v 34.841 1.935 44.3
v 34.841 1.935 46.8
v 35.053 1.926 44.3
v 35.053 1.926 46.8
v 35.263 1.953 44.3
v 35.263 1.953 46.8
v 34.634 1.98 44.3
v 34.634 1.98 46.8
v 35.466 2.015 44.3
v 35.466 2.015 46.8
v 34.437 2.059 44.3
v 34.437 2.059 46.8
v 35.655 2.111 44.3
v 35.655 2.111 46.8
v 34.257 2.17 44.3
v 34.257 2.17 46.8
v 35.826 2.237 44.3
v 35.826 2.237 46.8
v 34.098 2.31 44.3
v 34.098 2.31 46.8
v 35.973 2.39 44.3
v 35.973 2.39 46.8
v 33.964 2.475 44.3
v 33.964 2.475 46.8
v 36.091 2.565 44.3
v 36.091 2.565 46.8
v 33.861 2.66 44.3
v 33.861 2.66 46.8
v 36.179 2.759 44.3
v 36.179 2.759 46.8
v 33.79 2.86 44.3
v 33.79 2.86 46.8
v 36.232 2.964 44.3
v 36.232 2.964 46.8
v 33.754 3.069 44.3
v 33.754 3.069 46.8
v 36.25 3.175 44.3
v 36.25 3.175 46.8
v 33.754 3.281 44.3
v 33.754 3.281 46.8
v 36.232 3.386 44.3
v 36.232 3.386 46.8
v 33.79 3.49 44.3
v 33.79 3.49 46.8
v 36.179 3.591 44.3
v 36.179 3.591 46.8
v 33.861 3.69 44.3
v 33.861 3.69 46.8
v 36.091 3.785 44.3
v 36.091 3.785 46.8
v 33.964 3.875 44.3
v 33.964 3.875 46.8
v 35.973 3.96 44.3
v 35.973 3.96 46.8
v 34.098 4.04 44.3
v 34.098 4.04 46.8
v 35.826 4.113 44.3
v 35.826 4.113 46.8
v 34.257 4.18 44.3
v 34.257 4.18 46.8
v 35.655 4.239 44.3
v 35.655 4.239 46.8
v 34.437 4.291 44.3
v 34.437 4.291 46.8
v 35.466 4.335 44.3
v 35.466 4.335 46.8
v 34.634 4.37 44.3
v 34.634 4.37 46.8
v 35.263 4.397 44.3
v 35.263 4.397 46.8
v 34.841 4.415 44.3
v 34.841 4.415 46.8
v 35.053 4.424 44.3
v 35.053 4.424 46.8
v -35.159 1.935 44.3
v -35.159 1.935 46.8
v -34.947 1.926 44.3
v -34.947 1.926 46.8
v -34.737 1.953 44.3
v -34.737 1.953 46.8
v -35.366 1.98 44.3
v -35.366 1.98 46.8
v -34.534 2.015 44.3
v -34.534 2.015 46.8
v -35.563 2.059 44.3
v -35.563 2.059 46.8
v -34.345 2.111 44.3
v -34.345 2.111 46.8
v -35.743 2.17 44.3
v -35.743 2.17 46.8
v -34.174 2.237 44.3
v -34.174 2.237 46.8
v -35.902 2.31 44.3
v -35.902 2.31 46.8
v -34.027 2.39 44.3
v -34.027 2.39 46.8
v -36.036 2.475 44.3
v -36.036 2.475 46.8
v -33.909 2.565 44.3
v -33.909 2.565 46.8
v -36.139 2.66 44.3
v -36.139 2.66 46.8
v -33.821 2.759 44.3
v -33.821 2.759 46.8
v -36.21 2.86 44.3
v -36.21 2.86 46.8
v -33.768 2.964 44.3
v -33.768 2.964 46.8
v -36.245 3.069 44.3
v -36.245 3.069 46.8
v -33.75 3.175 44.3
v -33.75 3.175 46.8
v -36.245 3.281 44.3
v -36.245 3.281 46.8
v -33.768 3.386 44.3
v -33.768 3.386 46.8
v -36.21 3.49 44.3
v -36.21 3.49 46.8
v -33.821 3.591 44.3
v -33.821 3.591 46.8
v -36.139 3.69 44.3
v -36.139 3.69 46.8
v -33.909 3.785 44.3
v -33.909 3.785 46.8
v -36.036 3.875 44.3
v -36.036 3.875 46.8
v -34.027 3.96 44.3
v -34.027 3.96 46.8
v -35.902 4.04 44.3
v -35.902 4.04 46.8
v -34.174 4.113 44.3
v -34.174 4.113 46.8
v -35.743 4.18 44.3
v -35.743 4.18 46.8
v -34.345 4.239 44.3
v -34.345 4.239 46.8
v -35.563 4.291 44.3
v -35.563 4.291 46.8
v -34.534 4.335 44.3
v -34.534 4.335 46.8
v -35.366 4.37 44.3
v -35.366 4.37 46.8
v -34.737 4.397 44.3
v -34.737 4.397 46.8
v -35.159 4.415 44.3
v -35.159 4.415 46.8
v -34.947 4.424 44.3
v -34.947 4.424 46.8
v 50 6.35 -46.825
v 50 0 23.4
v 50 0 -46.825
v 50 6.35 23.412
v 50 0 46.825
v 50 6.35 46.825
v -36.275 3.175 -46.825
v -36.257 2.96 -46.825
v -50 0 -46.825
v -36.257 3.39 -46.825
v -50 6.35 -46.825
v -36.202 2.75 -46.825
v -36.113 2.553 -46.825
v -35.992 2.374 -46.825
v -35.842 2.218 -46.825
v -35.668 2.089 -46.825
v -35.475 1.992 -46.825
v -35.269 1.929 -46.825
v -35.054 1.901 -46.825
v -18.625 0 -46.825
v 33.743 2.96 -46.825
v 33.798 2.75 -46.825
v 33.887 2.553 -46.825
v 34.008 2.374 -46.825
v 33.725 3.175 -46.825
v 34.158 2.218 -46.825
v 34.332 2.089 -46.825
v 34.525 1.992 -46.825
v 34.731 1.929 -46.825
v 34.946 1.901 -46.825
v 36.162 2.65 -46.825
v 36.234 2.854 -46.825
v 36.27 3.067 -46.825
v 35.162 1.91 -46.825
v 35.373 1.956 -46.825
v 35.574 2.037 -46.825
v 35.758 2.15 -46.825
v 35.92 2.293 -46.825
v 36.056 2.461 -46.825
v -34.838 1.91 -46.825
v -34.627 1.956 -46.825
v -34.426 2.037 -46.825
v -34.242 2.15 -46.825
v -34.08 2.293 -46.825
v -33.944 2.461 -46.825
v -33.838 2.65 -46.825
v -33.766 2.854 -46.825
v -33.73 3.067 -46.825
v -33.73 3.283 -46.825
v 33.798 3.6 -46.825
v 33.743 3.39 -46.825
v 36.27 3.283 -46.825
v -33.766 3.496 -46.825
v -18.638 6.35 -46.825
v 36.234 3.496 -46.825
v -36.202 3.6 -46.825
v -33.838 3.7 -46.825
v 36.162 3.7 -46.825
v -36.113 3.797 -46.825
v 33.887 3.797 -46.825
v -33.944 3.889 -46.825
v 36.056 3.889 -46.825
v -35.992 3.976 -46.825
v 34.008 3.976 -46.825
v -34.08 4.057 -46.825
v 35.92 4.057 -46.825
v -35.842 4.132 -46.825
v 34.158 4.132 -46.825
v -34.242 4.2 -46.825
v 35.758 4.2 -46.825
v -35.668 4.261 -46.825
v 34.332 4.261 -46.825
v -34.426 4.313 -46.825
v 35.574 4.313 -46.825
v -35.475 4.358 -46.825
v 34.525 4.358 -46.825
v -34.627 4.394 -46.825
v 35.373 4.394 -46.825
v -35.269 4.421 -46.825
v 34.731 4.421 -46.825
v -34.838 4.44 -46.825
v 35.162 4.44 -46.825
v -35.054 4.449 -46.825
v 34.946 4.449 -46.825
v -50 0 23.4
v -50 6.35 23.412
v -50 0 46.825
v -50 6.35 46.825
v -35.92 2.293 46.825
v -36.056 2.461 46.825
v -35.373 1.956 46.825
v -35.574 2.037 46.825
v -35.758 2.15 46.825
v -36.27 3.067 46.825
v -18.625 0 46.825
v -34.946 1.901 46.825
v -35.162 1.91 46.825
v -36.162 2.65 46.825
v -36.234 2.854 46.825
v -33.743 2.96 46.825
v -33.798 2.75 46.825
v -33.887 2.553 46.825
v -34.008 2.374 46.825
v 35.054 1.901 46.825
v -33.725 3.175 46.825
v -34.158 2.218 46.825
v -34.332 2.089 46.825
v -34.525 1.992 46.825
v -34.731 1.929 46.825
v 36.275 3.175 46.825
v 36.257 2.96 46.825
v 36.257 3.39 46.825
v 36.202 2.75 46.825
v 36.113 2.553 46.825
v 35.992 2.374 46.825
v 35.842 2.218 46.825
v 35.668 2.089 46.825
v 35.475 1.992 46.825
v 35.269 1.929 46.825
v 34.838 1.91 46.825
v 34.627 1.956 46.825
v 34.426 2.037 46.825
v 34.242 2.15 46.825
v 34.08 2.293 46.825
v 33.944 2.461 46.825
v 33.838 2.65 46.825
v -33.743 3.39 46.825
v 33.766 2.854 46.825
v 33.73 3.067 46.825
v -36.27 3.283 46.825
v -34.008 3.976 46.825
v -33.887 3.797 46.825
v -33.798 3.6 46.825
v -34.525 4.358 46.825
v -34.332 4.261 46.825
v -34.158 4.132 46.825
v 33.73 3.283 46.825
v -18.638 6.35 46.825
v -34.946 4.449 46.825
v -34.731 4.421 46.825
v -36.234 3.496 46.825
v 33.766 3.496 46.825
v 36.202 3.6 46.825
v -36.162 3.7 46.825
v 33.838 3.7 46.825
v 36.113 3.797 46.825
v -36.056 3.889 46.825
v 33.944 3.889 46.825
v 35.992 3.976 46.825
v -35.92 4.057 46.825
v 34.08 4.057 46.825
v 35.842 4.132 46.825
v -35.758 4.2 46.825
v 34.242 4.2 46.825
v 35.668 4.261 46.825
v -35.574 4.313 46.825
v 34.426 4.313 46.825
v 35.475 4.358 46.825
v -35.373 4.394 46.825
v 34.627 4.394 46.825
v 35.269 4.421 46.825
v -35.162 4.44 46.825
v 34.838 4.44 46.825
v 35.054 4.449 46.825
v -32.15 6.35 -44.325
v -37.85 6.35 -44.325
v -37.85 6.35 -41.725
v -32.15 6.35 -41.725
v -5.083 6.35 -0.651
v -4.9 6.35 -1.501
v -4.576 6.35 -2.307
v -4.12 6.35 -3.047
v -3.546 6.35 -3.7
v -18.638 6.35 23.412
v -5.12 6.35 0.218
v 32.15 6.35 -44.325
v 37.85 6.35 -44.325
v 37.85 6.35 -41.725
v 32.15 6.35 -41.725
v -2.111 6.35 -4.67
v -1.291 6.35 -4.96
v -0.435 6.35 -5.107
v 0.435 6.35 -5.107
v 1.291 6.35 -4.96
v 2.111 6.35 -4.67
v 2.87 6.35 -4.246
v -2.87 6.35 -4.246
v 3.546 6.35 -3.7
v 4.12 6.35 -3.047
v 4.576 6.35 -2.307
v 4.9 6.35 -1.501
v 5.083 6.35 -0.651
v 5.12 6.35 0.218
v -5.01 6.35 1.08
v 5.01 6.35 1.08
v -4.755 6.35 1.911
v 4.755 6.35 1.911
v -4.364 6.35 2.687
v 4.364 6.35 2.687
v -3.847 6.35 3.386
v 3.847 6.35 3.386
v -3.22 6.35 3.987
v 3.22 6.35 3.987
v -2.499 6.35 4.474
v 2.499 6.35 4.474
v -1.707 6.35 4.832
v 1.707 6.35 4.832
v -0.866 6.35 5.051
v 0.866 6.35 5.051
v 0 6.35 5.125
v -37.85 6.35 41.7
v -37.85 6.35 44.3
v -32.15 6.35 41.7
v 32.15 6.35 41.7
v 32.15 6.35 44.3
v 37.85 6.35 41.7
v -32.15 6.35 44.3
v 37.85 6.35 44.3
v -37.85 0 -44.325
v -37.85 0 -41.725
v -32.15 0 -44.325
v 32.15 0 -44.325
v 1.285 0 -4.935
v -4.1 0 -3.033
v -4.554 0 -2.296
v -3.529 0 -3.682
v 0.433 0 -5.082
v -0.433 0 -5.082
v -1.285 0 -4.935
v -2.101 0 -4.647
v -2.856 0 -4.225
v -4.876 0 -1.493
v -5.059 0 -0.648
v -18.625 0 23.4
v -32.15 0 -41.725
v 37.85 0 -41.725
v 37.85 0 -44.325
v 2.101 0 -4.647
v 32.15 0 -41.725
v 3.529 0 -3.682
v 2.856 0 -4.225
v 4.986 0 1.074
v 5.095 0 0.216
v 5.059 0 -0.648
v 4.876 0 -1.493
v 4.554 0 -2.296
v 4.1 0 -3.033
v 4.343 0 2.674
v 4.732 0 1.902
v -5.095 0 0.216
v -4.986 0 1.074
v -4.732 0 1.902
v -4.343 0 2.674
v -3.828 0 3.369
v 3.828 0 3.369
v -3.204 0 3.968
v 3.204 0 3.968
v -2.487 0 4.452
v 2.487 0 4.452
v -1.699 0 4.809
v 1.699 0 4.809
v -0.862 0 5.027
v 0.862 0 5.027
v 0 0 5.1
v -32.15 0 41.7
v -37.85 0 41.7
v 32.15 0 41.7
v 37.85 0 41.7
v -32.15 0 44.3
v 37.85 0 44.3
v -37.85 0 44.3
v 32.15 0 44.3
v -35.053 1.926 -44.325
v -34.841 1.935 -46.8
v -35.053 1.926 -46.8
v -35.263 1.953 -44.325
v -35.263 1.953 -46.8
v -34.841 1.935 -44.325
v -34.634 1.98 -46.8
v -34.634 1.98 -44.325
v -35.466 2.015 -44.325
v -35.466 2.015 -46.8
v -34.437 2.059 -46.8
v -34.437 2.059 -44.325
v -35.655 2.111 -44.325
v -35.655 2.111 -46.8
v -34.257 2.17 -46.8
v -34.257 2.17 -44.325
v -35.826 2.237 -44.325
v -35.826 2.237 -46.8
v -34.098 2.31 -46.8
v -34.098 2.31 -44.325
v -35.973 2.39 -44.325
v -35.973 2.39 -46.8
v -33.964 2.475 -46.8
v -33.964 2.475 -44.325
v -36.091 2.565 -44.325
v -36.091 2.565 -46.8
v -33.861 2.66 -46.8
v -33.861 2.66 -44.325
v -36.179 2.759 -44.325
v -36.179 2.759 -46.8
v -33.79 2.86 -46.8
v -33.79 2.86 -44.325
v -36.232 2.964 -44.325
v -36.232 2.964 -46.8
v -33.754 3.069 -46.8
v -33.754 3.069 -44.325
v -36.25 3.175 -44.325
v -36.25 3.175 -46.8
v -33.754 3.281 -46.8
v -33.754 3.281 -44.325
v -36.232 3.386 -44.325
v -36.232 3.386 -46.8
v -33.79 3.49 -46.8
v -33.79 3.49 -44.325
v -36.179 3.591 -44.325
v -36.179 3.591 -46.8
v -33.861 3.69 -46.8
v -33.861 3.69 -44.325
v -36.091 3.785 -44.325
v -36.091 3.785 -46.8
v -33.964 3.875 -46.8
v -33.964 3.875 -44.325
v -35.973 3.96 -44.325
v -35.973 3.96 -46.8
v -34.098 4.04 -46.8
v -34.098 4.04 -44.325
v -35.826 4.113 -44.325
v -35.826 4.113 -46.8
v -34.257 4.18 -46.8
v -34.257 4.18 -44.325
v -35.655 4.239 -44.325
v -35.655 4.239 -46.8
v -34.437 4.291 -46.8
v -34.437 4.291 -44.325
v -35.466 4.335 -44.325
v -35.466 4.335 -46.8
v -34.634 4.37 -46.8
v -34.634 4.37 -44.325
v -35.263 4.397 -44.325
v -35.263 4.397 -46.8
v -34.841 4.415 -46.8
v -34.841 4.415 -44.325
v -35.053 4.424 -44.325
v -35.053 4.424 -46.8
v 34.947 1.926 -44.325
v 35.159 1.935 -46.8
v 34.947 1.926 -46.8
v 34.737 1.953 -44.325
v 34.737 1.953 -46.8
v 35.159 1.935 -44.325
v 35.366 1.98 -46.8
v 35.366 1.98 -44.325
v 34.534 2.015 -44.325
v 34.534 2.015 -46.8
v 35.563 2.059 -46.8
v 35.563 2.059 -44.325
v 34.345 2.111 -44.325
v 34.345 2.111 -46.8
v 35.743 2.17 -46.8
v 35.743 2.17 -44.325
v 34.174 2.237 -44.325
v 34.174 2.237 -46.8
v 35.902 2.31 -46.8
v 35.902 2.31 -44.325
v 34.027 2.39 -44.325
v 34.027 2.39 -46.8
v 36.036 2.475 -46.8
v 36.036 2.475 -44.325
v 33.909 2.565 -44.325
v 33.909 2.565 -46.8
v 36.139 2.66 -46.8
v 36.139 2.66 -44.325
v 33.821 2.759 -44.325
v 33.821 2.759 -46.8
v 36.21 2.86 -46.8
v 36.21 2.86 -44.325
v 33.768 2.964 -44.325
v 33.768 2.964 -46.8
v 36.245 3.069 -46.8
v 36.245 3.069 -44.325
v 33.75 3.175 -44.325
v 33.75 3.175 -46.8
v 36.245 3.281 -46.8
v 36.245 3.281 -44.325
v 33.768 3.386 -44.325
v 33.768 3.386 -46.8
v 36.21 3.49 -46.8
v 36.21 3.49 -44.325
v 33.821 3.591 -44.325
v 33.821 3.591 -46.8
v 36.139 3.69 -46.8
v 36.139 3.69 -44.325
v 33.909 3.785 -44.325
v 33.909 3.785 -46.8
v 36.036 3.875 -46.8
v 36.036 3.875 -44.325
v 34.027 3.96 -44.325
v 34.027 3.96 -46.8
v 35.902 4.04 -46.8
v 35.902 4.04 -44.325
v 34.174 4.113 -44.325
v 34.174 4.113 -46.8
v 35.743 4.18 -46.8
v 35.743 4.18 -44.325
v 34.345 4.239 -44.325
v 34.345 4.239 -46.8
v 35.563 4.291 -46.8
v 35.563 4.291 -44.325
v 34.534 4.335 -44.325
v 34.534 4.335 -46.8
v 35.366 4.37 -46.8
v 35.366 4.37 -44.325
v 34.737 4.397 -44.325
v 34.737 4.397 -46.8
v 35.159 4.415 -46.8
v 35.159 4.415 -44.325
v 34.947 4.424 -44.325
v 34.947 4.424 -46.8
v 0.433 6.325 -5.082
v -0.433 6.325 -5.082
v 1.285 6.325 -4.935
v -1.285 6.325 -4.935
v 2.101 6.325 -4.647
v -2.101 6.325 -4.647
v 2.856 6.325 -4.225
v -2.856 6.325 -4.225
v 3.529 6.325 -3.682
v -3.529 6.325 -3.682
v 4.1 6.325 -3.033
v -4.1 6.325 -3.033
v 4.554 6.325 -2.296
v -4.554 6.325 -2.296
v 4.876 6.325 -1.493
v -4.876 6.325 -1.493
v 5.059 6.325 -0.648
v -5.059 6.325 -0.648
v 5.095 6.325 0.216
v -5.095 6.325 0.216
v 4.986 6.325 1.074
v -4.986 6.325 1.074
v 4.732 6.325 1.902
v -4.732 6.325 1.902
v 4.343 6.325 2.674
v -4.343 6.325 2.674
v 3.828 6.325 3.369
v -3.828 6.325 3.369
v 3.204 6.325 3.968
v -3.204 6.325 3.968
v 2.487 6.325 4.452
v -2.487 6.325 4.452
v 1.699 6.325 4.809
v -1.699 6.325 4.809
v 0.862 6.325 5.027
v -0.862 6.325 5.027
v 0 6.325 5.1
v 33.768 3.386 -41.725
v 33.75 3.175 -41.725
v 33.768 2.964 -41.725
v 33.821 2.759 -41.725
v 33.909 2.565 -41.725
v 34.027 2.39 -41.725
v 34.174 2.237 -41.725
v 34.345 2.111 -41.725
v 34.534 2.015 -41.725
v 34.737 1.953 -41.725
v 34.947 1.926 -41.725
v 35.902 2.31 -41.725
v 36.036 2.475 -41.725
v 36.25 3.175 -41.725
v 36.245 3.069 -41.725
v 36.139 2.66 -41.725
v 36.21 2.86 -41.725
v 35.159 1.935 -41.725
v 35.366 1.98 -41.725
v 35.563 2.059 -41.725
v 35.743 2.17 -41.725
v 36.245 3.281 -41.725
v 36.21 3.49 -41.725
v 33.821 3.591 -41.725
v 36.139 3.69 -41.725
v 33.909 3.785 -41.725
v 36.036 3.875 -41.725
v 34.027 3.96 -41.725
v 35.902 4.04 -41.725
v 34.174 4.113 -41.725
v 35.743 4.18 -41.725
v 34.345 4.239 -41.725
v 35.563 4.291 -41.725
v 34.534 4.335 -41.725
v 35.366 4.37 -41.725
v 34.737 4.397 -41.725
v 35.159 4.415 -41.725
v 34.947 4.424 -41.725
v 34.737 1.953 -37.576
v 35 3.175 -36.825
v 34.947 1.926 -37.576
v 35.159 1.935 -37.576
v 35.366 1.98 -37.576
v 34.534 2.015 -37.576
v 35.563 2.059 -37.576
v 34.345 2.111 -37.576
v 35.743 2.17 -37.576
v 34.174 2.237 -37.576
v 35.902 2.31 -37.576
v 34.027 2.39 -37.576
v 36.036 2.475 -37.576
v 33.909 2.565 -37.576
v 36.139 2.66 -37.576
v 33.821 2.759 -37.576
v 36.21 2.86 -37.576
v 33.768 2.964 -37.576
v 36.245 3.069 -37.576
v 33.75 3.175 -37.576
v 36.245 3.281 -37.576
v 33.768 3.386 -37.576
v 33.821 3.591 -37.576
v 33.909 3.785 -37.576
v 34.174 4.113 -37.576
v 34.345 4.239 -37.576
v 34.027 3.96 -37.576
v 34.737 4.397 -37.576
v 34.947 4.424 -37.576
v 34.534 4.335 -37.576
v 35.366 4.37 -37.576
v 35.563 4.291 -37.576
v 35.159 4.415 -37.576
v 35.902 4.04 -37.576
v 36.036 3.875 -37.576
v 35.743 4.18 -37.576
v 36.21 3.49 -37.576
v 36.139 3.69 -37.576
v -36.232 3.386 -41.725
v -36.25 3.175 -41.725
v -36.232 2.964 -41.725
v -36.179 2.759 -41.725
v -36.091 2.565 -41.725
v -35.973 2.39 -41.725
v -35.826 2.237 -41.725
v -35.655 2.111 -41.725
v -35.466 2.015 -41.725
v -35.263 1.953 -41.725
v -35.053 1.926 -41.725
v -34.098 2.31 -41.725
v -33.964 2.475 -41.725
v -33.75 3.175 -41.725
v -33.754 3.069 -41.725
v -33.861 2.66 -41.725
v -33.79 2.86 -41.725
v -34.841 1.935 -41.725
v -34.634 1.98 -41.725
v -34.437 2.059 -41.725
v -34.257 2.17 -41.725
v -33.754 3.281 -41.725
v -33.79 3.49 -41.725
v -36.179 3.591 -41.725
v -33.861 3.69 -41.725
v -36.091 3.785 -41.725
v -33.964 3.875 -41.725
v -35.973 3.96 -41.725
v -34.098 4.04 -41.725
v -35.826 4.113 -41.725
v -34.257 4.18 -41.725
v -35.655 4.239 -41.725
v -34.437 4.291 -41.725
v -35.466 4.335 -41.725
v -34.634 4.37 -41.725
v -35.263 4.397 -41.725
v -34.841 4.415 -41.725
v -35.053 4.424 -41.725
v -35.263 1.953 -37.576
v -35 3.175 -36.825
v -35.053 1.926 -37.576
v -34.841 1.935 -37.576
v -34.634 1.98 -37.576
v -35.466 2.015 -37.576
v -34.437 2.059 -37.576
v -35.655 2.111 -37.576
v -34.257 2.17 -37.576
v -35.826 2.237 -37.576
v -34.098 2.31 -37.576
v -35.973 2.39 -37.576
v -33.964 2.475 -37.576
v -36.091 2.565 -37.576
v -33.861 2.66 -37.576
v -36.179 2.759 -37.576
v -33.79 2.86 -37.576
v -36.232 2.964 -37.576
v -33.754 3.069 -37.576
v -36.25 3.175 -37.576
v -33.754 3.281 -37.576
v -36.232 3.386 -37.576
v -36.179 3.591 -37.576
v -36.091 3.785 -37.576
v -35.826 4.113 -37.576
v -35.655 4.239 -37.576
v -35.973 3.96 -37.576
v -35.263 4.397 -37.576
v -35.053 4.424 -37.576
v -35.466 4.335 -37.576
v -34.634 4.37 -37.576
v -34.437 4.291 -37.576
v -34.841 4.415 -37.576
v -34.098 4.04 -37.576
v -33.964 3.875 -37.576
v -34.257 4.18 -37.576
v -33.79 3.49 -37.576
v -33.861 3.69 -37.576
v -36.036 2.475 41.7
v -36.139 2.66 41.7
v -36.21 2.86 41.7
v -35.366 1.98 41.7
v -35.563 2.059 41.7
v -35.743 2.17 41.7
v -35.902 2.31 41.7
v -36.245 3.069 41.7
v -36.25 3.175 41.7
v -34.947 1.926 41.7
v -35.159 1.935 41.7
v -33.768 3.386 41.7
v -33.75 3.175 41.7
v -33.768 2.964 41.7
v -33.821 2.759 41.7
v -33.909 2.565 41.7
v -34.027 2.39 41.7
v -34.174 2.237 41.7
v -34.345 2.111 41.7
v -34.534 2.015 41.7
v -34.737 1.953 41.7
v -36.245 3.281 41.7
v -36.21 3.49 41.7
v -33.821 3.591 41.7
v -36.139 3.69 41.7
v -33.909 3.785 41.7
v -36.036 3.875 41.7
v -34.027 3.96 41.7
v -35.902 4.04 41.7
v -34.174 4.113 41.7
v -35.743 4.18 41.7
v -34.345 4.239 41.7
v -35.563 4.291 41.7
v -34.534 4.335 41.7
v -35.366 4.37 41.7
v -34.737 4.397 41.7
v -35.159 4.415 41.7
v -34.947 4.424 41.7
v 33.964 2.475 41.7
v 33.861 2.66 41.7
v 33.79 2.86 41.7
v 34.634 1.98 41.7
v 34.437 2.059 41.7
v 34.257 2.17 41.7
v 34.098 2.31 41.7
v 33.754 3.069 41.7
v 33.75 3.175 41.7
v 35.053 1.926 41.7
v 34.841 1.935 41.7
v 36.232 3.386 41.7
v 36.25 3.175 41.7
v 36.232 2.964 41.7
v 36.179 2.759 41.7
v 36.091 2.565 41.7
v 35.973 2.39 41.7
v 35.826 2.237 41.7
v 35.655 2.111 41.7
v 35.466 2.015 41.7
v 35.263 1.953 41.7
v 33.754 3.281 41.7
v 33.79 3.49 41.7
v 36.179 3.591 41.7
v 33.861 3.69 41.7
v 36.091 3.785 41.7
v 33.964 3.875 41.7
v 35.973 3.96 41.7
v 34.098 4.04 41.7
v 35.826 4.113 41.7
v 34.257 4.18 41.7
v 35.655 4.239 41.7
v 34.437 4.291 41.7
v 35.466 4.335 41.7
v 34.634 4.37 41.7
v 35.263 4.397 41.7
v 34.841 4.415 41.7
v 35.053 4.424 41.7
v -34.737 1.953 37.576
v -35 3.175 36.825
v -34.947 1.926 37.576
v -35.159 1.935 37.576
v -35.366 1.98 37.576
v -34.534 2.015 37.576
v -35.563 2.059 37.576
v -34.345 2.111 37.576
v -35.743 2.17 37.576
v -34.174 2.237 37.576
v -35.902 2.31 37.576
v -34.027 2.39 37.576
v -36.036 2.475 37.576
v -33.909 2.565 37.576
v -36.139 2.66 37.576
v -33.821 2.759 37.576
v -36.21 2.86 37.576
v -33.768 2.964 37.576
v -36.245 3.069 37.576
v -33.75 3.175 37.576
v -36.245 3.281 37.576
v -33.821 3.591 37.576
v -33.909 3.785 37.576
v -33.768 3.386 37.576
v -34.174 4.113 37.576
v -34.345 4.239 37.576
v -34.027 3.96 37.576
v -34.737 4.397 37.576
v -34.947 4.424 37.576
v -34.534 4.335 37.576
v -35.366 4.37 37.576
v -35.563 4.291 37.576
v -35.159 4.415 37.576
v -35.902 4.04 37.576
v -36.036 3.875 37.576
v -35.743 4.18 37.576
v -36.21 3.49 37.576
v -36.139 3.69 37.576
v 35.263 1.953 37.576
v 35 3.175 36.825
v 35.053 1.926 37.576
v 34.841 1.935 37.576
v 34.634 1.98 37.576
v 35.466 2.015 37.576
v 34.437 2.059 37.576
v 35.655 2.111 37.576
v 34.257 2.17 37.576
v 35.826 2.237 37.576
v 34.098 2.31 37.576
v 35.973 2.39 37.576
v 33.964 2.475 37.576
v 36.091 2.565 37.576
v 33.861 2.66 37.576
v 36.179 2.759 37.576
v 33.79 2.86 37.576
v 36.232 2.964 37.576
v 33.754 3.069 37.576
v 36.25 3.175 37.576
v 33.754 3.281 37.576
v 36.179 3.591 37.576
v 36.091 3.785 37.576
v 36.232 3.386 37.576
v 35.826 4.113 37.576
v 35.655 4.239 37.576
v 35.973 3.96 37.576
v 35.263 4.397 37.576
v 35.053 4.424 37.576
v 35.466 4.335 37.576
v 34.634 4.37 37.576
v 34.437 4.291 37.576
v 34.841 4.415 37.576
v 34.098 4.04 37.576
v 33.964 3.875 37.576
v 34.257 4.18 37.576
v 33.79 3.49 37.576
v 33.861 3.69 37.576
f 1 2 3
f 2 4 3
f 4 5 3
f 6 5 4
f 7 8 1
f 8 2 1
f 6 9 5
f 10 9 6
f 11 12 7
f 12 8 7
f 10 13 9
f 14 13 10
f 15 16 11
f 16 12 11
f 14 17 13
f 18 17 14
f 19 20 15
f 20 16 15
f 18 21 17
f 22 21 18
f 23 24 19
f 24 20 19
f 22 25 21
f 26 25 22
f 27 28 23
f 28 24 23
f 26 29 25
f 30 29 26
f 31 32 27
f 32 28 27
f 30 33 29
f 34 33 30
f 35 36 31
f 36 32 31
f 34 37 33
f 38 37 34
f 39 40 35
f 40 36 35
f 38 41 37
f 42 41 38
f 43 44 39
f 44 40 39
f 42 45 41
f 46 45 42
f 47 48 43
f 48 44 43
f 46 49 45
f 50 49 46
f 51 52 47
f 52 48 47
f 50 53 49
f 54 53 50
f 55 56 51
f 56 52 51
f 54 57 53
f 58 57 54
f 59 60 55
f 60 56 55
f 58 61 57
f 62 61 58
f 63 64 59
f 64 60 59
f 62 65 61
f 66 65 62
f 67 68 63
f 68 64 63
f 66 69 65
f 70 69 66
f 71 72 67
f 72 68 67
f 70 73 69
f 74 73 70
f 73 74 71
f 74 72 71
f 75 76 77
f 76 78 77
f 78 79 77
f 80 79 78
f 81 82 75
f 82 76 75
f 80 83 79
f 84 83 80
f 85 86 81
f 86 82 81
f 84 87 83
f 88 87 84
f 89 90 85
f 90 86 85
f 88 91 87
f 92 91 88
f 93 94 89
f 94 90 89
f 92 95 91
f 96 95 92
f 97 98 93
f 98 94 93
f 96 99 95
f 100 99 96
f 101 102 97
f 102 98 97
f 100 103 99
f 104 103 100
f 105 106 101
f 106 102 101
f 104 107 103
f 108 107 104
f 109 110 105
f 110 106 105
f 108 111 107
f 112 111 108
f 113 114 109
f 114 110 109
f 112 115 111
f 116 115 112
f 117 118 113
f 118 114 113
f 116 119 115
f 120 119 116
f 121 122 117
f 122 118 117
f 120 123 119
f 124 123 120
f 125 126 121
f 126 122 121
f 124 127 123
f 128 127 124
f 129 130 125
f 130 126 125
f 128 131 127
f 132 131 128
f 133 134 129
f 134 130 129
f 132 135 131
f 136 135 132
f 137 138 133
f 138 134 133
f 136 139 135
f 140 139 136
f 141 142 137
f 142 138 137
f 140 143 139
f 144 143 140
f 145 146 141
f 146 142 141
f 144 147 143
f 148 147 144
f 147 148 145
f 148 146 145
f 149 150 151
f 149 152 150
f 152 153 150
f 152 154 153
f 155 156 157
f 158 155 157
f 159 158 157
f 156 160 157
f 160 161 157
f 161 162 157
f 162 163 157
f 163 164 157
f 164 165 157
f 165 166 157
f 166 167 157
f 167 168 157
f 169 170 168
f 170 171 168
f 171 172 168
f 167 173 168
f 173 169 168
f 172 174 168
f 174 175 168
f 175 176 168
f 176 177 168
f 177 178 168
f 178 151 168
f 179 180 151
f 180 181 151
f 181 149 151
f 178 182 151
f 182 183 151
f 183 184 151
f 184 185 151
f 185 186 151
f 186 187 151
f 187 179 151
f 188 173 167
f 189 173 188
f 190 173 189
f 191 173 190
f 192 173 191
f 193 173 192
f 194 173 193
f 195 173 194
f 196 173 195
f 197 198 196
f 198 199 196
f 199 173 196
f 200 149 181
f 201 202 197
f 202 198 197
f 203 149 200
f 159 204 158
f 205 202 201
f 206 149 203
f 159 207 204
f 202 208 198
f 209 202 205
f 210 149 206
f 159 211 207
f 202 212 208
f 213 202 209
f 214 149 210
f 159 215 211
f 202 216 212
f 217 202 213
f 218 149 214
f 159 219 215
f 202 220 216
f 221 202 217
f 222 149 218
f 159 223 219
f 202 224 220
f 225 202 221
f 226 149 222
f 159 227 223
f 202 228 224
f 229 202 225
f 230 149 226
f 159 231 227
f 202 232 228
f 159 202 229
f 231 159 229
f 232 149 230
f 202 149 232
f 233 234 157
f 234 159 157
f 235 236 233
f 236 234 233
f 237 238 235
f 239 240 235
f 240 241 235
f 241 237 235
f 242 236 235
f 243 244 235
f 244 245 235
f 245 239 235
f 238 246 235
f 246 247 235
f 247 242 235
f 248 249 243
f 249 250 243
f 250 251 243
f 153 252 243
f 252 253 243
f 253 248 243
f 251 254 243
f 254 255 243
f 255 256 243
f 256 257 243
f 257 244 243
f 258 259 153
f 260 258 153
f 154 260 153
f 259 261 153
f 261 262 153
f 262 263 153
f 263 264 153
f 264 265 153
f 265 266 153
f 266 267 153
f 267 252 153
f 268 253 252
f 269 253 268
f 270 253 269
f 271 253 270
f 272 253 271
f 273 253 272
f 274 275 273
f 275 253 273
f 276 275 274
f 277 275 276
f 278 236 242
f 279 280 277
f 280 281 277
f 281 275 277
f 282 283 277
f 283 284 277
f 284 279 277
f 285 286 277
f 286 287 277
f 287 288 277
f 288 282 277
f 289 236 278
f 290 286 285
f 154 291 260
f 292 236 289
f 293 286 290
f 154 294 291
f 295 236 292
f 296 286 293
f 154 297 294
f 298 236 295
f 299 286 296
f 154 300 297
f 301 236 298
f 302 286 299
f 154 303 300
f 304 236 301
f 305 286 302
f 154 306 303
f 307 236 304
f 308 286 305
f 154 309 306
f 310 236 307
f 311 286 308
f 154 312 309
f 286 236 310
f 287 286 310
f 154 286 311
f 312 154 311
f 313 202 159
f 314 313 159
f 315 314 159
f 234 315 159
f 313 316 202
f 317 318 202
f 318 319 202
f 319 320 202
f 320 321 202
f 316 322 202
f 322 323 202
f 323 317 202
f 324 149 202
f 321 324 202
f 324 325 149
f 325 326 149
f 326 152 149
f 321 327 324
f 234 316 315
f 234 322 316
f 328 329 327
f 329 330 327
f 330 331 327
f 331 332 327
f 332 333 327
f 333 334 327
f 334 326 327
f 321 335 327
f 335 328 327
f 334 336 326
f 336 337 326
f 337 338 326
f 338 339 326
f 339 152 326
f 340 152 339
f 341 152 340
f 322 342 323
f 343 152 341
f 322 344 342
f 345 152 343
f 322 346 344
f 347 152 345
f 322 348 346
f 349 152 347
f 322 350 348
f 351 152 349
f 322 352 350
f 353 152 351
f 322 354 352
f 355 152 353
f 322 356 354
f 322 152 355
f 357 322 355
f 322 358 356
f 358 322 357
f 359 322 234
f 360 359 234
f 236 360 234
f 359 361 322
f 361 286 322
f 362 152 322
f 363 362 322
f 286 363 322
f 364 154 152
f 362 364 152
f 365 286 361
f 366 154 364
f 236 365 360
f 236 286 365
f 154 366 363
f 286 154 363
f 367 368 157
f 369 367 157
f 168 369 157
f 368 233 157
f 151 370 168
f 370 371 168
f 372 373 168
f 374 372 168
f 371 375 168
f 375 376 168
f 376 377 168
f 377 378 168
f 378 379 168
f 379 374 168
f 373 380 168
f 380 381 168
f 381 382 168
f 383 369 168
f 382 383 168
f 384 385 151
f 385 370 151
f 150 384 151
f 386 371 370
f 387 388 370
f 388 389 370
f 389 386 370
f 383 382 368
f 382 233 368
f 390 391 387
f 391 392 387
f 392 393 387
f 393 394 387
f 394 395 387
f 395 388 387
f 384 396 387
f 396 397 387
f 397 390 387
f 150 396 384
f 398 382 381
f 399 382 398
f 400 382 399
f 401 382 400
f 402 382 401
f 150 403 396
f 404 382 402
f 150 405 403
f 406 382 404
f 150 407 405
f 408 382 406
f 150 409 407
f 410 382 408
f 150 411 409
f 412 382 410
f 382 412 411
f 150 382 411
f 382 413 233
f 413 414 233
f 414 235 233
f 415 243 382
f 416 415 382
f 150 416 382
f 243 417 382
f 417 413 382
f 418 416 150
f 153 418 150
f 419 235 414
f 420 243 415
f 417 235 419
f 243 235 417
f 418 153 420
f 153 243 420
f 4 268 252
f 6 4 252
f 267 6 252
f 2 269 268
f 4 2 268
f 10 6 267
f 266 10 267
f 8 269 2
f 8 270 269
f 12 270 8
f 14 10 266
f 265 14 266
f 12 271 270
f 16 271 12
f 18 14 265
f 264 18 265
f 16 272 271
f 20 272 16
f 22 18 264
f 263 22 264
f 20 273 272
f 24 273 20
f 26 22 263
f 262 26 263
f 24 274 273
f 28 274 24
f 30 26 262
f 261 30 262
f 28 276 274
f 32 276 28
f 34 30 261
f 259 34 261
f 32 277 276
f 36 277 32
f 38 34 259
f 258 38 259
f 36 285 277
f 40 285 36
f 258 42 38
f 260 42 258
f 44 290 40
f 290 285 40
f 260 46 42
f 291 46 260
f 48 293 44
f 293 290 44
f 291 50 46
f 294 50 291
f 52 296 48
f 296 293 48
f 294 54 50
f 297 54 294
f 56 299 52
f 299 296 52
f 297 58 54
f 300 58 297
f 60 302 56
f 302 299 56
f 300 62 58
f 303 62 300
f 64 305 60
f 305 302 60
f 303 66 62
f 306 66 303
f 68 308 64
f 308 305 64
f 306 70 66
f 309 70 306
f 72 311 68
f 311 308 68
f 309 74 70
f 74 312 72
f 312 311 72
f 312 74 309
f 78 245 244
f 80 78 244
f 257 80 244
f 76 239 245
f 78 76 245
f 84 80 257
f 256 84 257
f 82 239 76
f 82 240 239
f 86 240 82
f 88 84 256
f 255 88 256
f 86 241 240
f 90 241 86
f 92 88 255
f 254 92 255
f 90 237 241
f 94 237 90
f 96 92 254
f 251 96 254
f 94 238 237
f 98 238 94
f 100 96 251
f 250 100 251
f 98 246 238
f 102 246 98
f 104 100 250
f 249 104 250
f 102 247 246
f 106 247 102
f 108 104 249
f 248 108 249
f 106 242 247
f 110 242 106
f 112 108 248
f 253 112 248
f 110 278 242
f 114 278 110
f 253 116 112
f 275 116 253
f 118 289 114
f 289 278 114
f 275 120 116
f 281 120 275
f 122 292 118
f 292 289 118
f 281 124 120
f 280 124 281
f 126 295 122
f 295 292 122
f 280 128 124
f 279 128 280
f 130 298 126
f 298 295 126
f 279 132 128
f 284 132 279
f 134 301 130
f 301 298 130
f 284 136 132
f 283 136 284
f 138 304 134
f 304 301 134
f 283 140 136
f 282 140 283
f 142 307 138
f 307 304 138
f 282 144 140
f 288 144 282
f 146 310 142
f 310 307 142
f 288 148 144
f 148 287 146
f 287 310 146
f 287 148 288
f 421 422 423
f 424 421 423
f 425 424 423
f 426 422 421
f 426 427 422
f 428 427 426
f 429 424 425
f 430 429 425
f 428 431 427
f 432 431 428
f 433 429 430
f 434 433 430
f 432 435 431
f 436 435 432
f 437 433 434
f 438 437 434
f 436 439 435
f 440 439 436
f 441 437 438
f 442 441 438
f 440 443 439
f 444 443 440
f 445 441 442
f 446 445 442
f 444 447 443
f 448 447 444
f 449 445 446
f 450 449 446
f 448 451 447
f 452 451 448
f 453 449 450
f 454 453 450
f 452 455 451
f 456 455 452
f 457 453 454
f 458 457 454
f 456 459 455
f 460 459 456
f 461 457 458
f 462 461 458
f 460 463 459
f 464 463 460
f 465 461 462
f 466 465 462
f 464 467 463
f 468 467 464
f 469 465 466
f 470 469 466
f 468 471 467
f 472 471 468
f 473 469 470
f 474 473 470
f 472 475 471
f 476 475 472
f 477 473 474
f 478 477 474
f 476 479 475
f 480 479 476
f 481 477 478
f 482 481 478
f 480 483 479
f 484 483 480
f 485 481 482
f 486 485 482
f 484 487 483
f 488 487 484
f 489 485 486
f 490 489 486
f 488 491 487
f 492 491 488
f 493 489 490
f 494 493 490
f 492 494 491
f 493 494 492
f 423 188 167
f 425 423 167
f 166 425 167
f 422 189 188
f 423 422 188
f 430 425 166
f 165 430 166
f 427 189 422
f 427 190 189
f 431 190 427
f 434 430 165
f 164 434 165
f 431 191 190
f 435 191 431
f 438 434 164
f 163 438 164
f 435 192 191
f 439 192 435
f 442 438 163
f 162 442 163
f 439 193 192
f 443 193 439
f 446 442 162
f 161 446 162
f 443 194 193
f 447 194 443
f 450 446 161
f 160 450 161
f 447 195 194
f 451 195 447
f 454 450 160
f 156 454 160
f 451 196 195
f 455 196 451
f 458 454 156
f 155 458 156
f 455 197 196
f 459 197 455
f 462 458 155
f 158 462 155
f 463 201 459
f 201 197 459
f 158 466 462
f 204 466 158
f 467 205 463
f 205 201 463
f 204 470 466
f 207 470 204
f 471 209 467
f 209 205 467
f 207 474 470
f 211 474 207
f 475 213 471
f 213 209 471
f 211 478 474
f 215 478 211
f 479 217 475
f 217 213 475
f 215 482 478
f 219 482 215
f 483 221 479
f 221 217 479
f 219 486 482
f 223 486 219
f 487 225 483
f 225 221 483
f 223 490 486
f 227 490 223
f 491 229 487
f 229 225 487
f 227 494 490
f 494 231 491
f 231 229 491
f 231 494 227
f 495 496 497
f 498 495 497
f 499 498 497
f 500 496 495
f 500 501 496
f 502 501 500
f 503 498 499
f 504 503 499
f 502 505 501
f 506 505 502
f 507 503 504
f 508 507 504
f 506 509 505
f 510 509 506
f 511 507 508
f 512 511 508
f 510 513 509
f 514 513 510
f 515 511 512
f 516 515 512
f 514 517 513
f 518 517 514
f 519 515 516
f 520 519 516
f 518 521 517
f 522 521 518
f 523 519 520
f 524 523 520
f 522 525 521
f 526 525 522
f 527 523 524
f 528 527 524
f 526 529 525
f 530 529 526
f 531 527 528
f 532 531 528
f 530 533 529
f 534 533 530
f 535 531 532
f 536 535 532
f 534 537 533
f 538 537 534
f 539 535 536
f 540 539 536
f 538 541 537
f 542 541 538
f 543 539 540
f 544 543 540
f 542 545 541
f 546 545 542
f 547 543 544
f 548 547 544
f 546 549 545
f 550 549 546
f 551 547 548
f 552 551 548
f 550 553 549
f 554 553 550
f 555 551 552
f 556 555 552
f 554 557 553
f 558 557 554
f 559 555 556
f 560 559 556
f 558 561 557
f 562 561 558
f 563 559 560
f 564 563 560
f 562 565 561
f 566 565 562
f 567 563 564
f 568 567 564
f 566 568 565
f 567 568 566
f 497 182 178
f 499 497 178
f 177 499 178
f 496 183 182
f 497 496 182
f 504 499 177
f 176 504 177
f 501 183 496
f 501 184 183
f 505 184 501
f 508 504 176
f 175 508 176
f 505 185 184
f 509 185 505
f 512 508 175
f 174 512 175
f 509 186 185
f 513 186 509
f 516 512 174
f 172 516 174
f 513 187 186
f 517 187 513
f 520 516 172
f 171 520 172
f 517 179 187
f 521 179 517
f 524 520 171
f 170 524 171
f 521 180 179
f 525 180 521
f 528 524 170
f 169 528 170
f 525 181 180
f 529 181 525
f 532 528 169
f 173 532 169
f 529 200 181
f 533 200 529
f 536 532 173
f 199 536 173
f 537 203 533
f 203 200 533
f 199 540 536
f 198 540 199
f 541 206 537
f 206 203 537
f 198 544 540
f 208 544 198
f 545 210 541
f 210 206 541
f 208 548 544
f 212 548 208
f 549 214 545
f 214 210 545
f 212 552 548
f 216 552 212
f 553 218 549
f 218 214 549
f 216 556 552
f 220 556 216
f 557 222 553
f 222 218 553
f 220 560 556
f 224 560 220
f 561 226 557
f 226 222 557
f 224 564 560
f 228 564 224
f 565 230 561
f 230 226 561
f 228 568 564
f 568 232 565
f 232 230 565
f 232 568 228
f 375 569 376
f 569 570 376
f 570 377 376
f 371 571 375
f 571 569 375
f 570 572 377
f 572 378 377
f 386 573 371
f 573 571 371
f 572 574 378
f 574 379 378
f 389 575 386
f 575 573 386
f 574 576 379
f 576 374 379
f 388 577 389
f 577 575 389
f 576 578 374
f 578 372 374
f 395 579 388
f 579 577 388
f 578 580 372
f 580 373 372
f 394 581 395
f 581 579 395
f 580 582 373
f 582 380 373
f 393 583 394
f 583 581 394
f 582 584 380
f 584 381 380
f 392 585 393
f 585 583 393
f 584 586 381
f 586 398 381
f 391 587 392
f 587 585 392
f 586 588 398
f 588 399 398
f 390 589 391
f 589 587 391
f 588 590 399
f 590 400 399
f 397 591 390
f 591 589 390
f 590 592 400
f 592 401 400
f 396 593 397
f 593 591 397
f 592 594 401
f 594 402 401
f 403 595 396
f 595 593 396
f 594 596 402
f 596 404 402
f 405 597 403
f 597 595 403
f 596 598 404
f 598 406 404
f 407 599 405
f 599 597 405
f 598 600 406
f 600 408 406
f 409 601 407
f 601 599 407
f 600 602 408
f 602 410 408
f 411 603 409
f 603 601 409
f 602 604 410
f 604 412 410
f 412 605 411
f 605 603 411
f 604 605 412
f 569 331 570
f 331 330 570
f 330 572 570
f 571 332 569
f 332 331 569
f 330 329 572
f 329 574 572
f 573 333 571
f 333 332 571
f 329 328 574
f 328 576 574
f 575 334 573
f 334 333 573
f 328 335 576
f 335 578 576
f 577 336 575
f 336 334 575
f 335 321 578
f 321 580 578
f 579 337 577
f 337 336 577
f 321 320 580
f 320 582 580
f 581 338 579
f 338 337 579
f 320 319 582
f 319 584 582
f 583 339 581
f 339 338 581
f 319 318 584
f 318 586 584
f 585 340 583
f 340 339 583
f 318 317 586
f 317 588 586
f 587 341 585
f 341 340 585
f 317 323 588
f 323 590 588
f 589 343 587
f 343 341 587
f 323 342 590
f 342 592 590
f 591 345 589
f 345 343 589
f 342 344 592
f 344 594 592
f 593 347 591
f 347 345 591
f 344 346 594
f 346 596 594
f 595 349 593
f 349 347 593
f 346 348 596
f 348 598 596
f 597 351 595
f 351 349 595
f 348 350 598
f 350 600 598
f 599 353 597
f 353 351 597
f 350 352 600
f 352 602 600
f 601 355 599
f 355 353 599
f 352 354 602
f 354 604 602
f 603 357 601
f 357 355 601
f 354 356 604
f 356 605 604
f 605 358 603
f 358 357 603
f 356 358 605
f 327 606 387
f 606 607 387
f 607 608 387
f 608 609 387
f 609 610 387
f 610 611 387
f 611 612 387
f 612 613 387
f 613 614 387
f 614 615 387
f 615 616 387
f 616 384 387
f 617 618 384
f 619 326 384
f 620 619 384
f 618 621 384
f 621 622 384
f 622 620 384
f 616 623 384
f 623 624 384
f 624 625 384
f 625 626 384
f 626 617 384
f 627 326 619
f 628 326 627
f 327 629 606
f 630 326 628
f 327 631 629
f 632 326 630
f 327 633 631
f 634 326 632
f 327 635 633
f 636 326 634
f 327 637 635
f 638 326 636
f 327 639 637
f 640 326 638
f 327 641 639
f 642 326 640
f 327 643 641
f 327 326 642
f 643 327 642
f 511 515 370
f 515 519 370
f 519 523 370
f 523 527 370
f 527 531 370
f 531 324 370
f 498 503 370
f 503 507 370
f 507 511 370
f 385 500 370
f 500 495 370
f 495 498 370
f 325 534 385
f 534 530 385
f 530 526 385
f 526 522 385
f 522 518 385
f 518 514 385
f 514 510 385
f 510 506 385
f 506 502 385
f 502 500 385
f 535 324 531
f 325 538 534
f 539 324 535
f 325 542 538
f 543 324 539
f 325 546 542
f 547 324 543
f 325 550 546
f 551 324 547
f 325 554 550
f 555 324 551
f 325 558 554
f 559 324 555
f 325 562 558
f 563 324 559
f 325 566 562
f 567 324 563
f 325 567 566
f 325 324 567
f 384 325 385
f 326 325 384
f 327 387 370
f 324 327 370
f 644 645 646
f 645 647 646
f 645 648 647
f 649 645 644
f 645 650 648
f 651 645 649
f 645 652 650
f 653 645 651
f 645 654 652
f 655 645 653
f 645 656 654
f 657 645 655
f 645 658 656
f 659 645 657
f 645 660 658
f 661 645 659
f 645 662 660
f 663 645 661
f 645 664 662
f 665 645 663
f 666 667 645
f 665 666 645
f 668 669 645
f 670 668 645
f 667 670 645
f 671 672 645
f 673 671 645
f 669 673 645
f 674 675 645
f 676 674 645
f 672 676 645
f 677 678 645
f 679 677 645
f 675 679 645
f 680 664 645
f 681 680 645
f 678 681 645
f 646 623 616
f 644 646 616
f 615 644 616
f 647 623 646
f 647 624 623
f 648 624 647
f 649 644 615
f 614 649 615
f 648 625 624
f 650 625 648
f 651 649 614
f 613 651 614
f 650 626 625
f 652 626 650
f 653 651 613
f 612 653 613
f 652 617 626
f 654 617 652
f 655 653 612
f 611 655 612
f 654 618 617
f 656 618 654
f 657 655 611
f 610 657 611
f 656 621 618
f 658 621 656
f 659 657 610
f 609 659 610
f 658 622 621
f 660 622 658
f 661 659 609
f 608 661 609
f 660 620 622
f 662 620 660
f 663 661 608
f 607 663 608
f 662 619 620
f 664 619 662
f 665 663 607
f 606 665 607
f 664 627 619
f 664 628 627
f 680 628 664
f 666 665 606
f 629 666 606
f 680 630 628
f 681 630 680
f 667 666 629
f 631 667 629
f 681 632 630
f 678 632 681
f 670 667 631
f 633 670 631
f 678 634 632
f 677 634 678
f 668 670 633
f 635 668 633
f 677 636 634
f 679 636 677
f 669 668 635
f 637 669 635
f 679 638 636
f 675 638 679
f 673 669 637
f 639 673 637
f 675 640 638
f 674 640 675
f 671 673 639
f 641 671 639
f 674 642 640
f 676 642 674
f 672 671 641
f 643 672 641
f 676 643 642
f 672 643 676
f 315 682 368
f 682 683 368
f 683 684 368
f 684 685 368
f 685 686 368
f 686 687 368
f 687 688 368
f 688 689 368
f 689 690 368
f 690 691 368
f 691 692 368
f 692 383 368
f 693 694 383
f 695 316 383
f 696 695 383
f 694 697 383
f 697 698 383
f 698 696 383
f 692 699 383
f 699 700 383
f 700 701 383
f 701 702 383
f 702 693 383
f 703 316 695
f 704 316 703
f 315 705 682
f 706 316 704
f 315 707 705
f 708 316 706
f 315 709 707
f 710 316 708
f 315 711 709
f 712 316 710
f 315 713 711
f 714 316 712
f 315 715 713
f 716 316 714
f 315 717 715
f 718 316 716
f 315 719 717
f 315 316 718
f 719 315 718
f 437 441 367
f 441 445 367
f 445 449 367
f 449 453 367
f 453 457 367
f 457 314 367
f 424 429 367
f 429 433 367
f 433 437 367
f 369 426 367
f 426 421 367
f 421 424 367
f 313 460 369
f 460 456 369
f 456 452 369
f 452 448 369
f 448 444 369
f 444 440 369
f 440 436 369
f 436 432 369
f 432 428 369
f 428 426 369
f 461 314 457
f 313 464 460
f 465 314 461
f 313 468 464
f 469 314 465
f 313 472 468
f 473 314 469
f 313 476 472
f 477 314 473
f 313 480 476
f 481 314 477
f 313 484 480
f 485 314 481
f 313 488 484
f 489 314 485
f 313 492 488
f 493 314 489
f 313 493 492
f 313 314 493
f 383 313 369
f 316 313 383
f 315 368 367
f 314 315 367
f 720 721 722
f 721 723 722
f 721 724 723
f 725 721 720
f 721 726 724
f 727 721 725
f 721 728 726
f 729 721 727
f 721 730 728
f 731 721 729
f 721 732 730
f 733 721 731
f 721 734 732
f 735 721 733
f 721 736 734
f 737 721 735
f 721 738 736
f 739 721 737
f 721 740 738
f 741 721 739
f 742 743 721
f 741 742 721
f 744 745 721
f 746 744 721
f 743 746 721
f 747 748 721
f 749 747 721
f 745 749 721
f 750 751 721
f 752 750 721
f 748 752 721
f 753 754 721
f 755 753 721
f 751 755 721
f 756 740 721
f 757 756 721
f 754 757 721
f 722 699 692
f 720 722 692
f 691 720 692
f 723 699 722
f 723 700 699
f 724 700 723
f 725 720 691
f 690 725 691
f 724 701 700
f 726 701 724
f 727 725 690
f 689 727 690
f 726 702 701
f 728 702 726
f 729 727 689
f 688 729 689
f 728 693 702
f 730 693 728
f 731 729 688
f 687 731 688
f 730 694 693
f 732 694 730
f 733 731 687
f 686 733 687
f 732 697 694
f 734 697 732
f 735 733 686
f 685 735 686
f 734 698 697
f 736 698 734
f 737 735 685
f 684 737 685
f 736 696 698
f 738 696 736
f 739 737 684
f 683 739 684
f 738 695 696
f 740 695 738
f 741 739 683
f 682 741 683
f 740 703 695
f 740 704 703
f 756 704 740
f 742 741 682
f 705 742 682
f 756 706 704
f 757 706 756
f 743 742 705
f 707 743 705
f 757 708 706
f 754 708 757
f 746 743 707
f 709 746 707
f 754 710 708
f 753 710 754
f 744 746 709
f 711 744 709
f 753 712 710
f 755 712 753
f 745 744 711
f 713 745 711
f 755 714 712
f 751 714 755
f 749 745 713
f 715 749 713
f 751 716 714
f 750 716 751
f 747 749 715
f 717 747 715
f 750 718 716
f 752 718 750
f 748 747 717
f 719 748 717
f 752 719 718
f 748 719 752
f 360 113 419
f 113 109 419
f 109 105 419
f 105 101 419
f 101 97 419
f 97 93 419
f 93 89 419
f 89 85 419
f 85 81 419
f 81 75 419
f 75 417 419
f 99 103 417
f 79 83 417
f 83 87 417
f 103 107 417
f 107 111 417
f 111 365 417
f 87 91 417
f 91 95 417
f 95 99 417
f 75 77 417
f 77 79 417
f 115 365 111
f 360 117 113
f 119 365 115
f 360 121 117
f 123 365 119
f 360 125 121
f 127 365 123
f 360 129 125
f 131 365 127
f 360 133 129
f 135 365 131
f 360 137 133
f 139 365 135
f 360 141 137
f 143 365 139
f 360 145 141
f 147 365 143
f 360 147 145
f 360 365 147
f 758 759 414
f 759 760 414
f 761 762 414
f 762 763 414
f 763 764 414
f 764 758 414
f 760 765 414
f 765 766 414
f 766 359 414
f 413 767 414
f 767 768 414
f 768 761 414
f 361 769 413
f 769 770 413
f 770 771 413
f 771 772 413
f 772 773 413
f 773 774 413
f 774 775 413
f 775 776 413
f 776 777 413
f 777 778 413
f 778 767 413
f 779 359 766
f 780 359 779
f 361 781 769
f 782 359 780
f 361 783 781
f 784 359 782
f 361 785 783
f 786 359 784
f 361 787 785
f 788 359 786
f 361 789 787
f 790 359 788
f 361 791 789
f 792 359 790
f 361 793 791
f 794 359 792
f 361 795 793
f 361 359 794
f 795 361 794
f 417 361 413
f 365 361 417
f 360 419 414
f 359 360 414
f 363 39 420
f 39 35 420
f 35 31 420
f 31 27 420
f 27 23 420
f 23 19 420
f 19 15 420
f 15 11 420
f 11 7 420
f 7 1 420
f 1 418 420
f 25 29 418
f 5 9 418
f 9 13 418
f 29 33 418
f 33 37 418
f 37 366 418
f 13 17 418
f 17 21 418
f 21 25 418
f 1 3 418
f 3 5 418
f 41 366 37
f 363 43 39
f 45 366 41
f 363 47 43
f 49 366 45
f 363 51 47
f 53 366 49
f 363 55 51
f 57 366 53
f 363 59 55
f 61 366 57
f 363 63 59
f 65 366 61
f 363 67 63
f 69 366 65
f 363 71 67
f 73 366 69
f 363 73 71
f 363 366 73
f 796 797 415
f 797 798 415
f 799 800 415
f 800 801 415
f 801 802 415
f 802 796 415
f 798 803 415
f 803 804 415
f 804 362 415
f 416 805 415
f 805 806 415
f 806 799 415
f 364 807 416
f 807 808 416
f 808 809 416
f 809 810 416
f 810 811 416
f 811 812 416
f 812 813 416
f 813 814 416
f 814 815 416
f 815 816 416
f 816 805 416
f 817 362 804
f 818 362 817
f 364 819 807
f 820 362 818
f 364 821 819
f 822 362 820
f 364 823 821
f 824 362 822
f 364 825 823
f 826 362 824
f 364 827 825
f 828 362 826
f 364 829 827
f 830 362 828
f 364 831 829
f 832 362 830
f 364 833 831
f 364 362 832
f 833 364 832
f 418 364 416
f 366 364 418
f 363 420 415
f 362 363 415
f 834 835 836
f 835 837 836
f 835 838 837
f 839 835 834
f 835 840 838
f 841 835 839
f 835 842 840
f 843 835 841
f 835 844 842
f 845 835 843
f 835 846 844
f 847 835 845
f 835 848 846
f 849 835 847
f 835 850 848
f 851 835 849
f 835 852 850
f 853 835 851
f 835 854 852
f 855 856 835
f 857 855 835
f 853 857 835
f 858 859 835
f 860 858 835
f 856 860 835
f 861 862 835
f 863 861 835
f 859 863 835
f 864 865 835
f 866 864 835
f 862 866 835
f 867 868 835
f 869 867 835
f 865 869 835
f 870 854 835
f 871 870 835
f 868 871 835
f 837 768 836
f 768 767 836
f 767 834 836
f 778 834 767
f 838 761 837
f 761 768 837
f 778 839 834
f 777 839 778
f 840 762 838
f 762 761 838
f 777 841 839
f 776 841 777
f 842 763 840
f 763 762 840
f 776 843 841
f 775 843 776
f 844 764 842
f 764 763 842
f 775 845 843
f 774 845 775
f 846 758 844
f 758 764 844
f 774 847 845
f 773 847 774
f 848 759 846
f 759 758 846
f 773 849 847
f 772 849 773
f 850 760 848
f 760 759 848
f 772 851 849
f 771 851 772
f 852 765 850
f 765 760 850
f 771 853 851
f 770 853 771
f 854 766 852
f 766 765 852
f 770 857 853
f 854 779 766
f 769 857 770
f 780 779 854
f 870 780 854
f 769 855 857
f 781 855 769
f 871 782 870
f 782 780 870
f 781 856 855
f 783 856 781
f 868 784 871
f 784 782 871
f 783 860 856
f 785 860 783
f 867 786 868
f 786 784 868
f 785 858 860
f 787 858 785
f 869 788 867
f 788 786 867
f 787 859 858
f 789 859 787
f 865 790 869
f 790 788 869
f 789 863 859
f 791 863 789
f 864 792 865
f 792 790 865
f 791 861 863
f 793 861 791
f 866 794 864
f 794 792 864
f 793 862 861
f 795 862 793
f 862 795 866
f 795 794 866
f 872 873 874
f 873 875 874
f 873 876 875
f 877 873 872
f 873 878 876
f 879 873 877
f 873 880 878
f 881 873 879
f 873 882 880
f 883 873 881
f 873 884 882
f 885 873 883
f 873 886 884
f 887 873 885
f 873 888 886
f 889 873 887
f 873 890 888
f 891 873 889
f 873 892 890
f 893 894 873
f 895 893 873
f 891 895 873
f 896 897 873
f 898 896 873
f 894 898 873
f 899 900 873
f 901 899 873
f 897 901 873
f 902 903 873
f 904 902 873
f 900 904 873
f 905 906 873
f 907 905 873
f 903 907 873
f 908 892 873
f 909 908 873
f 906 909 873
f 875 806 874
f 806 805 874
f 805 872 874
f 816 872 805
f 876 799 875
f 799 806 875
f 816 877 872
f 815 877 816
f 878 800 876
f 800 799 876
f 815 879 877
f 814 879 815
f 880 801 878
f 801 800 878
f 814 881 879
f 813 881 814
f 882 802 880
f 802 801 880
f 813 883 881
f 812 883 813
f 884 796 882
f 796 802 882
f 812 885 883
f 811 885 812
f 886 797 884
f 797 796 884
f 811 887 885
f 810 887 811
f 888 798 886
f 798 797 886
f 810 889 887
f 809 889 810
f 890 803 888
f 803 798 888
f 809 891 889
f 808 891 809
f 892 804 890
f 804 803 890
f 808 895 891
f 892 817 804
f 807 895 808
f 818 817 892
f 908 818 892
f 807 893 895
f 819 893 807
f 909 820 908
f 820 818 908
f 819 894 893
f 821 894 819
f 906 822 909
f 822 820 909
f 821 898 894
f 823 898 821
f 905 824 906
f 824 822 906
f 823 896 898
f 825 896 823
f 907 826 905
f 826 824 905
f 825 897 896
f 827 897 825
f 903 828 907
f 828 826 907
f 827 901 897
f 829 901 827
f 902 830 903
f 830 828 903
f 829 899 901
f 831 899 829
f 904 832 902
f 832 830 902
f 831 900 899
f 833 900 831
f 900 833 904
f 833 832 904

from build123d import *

# Parameters (mm, degrees)
SKETCH1_W                               = 100
SKETCH1_H                               = 93.65
BOSS_EXTRUDE1_DEPTH                     = 6.35
TAP_DRILL_FOR_M3X0_5_TAP1_D             = 2.5
TAP_DRILL_FOR_M3X0_5_TAP1_DEPTH         = 9.248924226
TAP_DRILL_FOR_M3X0_5_TAP1_CSINK_D       = 2.55
TAP_DRILL_FOR_M3X0_5_TAP1_CSINK_ANGLE   = 90
TAP_DRILL_FOR_M3X0_5_TAP1_TIP           = 0.751075774
TAP_DRILL_FOR_M3X0_5_TAP2_D             = 2.5
TAP_DRILL_FOR_M3X0_5_TAP2_DEPTH         = 9.248924226
TAP_DRILL_FOR_M3X0_5_TAP2_CSINK_D       = 2.55
TAP_DRILL_FOR_M3X0_5_TAP2_CSINK_ANGLE   = 90
TAP_DRILL_FOR_M3X0_5_TAP2_TIP           = 0.751075774
TAP_DRILL_FOR_M12X1_75_TAP1_D           = 10.2
TAP_DRILL_FOR_M12X1_75_TAP1_CSINK_D     = 10.25
TAP_DRILL_FOR_M12X1_75_TAP1_CSINK_ANGLE = 90
SKETCH11_W                              = 5.7
SKETCH11_H                              = 2.6
CUT_EXTRUDE1_DEPTH                      = 69.796098182


with BuildPart() as part:
    # Sketch1 → Boss-Extrude1 (new body)
    with BuildSketch(Plane(origin=(0, 0, 0), x_dir=(1, 0, 0), z_dir=(0, 1, 0))):
        Rectangle(SKETCH1_W, SKETCH1_H)
    extrude(amount=BOSS_EXTRUDE1_DEPTH)

    # Tap Drill for M3x0.5 Tap1
    with Locations(Plane.XY.offset(46.825)):
        with Locations((-35, 3.175), (35, 3.175)):
            CounterSinkHole(TAP_DRILL_FOR_M3X0_5_TAP1_D / 2, TAP_DRILL_FOR_M3X0_5_TAP1_CSINK_D / 2, depth=TAP_DRILL_FOR_M3X0_5_TAP1_DEPTH, counter_sink_angle=TAP_DRILL_FOR_M3X0_5_TAP1_CSINK_ANGLE)
            with Locations((0, 0, -(TAP_DRILL_FOR_M3X0_5_TAP1_DEPTH + TAP_DRILL_FOR_M3X0_5_TAP1_TIP / 2))):  # 118° drill point
                Cone(0, TAP_DRILL_FOR_M3X0_5_TAP1_D / 2, TAP_DRILL_FOR_M3X0_5_TAP1_TIP, mode=Mode.SUBTRACT)

    # Tap Drill for M3x0.5 Tap2
    with Locations(Plane(origin=(0, 0, -46.825), x_dir=(-1, 0, 0), z_dir=(0, 0, -1))):
        with Locations((-35, 3.175), (35, 3.175)):
            CounterSinkHole(TAP_DRILL_FOR_M3X0_5_TAP2_D / 2, TAP_DRILL_FOR_M3X0_5_TAP2_CSINK_D / 2, depth=TAP_DRILL_FOR_M3X0_5_TAP2_DEPTH, counter_sink_angle=TAP_DRILL_FOR_M3X0_5_TAP2_CSINK_ANGLE)
            with Locations((0, 0, -(TAP_DRILL_FOR_M3X0_5_TAP2_DEPTH + TAP_DRILL_FOR_M3X0_5_TAP2_TIP / 2))):  # 118° drill point
                Cone(0, TAP_DRILL_FOR_M3X0_5_TAP2_D / 2, TAP_DRILL_FOR_M3X0_5_TAP2_TIP, mode=Mode.SUBTRACT)

    # Tap Drill for M12x1.75 Tap1 (through all)
    with Locations(Plane(origin=(0, 6.35, 0), x_dir=(1, 0, 0), z_dir=(0, 1, 0))):
        with Locations((0, 0)):
            CounterSinkHole(TAP_DRILL_FOR_M12X1_75_TAP1_D / 2, TAP_DRILL_FOR_M12X1_75_TAP1_CSINK_D / 2, counter_sink_angle=TAP_DRILL_FOR_M12X1_75_TAP1_CSINK_ANGLE)

    # Sketch11 → Cut-Extrude1 (cut, through all)
    with BuildSketch(Plane(origin=(0, 6.35, 0), x_dir=(1, 0, 0), z_dir=(0, 1, 0))):
        with Locations((35, -43)):
            Rectangle(SKETCH11_W, SKETCH11_H)
        with Locations((-35, -43)):
            Rectangle(SKETCH11_W, SKETCH11_H)
        with Locations((-35, 43.025)):
            Rectangle(SKETCH11_W, SKETCH11_H)
        with Locations((35, 43.025)):
            Rectangle(SKETCH11_W, SKETCH11_H)
    extrude(amount=-CUT_EXTRUDE1_DEPTH, mode=Mode.SUBTRACT)


solid = part.part
